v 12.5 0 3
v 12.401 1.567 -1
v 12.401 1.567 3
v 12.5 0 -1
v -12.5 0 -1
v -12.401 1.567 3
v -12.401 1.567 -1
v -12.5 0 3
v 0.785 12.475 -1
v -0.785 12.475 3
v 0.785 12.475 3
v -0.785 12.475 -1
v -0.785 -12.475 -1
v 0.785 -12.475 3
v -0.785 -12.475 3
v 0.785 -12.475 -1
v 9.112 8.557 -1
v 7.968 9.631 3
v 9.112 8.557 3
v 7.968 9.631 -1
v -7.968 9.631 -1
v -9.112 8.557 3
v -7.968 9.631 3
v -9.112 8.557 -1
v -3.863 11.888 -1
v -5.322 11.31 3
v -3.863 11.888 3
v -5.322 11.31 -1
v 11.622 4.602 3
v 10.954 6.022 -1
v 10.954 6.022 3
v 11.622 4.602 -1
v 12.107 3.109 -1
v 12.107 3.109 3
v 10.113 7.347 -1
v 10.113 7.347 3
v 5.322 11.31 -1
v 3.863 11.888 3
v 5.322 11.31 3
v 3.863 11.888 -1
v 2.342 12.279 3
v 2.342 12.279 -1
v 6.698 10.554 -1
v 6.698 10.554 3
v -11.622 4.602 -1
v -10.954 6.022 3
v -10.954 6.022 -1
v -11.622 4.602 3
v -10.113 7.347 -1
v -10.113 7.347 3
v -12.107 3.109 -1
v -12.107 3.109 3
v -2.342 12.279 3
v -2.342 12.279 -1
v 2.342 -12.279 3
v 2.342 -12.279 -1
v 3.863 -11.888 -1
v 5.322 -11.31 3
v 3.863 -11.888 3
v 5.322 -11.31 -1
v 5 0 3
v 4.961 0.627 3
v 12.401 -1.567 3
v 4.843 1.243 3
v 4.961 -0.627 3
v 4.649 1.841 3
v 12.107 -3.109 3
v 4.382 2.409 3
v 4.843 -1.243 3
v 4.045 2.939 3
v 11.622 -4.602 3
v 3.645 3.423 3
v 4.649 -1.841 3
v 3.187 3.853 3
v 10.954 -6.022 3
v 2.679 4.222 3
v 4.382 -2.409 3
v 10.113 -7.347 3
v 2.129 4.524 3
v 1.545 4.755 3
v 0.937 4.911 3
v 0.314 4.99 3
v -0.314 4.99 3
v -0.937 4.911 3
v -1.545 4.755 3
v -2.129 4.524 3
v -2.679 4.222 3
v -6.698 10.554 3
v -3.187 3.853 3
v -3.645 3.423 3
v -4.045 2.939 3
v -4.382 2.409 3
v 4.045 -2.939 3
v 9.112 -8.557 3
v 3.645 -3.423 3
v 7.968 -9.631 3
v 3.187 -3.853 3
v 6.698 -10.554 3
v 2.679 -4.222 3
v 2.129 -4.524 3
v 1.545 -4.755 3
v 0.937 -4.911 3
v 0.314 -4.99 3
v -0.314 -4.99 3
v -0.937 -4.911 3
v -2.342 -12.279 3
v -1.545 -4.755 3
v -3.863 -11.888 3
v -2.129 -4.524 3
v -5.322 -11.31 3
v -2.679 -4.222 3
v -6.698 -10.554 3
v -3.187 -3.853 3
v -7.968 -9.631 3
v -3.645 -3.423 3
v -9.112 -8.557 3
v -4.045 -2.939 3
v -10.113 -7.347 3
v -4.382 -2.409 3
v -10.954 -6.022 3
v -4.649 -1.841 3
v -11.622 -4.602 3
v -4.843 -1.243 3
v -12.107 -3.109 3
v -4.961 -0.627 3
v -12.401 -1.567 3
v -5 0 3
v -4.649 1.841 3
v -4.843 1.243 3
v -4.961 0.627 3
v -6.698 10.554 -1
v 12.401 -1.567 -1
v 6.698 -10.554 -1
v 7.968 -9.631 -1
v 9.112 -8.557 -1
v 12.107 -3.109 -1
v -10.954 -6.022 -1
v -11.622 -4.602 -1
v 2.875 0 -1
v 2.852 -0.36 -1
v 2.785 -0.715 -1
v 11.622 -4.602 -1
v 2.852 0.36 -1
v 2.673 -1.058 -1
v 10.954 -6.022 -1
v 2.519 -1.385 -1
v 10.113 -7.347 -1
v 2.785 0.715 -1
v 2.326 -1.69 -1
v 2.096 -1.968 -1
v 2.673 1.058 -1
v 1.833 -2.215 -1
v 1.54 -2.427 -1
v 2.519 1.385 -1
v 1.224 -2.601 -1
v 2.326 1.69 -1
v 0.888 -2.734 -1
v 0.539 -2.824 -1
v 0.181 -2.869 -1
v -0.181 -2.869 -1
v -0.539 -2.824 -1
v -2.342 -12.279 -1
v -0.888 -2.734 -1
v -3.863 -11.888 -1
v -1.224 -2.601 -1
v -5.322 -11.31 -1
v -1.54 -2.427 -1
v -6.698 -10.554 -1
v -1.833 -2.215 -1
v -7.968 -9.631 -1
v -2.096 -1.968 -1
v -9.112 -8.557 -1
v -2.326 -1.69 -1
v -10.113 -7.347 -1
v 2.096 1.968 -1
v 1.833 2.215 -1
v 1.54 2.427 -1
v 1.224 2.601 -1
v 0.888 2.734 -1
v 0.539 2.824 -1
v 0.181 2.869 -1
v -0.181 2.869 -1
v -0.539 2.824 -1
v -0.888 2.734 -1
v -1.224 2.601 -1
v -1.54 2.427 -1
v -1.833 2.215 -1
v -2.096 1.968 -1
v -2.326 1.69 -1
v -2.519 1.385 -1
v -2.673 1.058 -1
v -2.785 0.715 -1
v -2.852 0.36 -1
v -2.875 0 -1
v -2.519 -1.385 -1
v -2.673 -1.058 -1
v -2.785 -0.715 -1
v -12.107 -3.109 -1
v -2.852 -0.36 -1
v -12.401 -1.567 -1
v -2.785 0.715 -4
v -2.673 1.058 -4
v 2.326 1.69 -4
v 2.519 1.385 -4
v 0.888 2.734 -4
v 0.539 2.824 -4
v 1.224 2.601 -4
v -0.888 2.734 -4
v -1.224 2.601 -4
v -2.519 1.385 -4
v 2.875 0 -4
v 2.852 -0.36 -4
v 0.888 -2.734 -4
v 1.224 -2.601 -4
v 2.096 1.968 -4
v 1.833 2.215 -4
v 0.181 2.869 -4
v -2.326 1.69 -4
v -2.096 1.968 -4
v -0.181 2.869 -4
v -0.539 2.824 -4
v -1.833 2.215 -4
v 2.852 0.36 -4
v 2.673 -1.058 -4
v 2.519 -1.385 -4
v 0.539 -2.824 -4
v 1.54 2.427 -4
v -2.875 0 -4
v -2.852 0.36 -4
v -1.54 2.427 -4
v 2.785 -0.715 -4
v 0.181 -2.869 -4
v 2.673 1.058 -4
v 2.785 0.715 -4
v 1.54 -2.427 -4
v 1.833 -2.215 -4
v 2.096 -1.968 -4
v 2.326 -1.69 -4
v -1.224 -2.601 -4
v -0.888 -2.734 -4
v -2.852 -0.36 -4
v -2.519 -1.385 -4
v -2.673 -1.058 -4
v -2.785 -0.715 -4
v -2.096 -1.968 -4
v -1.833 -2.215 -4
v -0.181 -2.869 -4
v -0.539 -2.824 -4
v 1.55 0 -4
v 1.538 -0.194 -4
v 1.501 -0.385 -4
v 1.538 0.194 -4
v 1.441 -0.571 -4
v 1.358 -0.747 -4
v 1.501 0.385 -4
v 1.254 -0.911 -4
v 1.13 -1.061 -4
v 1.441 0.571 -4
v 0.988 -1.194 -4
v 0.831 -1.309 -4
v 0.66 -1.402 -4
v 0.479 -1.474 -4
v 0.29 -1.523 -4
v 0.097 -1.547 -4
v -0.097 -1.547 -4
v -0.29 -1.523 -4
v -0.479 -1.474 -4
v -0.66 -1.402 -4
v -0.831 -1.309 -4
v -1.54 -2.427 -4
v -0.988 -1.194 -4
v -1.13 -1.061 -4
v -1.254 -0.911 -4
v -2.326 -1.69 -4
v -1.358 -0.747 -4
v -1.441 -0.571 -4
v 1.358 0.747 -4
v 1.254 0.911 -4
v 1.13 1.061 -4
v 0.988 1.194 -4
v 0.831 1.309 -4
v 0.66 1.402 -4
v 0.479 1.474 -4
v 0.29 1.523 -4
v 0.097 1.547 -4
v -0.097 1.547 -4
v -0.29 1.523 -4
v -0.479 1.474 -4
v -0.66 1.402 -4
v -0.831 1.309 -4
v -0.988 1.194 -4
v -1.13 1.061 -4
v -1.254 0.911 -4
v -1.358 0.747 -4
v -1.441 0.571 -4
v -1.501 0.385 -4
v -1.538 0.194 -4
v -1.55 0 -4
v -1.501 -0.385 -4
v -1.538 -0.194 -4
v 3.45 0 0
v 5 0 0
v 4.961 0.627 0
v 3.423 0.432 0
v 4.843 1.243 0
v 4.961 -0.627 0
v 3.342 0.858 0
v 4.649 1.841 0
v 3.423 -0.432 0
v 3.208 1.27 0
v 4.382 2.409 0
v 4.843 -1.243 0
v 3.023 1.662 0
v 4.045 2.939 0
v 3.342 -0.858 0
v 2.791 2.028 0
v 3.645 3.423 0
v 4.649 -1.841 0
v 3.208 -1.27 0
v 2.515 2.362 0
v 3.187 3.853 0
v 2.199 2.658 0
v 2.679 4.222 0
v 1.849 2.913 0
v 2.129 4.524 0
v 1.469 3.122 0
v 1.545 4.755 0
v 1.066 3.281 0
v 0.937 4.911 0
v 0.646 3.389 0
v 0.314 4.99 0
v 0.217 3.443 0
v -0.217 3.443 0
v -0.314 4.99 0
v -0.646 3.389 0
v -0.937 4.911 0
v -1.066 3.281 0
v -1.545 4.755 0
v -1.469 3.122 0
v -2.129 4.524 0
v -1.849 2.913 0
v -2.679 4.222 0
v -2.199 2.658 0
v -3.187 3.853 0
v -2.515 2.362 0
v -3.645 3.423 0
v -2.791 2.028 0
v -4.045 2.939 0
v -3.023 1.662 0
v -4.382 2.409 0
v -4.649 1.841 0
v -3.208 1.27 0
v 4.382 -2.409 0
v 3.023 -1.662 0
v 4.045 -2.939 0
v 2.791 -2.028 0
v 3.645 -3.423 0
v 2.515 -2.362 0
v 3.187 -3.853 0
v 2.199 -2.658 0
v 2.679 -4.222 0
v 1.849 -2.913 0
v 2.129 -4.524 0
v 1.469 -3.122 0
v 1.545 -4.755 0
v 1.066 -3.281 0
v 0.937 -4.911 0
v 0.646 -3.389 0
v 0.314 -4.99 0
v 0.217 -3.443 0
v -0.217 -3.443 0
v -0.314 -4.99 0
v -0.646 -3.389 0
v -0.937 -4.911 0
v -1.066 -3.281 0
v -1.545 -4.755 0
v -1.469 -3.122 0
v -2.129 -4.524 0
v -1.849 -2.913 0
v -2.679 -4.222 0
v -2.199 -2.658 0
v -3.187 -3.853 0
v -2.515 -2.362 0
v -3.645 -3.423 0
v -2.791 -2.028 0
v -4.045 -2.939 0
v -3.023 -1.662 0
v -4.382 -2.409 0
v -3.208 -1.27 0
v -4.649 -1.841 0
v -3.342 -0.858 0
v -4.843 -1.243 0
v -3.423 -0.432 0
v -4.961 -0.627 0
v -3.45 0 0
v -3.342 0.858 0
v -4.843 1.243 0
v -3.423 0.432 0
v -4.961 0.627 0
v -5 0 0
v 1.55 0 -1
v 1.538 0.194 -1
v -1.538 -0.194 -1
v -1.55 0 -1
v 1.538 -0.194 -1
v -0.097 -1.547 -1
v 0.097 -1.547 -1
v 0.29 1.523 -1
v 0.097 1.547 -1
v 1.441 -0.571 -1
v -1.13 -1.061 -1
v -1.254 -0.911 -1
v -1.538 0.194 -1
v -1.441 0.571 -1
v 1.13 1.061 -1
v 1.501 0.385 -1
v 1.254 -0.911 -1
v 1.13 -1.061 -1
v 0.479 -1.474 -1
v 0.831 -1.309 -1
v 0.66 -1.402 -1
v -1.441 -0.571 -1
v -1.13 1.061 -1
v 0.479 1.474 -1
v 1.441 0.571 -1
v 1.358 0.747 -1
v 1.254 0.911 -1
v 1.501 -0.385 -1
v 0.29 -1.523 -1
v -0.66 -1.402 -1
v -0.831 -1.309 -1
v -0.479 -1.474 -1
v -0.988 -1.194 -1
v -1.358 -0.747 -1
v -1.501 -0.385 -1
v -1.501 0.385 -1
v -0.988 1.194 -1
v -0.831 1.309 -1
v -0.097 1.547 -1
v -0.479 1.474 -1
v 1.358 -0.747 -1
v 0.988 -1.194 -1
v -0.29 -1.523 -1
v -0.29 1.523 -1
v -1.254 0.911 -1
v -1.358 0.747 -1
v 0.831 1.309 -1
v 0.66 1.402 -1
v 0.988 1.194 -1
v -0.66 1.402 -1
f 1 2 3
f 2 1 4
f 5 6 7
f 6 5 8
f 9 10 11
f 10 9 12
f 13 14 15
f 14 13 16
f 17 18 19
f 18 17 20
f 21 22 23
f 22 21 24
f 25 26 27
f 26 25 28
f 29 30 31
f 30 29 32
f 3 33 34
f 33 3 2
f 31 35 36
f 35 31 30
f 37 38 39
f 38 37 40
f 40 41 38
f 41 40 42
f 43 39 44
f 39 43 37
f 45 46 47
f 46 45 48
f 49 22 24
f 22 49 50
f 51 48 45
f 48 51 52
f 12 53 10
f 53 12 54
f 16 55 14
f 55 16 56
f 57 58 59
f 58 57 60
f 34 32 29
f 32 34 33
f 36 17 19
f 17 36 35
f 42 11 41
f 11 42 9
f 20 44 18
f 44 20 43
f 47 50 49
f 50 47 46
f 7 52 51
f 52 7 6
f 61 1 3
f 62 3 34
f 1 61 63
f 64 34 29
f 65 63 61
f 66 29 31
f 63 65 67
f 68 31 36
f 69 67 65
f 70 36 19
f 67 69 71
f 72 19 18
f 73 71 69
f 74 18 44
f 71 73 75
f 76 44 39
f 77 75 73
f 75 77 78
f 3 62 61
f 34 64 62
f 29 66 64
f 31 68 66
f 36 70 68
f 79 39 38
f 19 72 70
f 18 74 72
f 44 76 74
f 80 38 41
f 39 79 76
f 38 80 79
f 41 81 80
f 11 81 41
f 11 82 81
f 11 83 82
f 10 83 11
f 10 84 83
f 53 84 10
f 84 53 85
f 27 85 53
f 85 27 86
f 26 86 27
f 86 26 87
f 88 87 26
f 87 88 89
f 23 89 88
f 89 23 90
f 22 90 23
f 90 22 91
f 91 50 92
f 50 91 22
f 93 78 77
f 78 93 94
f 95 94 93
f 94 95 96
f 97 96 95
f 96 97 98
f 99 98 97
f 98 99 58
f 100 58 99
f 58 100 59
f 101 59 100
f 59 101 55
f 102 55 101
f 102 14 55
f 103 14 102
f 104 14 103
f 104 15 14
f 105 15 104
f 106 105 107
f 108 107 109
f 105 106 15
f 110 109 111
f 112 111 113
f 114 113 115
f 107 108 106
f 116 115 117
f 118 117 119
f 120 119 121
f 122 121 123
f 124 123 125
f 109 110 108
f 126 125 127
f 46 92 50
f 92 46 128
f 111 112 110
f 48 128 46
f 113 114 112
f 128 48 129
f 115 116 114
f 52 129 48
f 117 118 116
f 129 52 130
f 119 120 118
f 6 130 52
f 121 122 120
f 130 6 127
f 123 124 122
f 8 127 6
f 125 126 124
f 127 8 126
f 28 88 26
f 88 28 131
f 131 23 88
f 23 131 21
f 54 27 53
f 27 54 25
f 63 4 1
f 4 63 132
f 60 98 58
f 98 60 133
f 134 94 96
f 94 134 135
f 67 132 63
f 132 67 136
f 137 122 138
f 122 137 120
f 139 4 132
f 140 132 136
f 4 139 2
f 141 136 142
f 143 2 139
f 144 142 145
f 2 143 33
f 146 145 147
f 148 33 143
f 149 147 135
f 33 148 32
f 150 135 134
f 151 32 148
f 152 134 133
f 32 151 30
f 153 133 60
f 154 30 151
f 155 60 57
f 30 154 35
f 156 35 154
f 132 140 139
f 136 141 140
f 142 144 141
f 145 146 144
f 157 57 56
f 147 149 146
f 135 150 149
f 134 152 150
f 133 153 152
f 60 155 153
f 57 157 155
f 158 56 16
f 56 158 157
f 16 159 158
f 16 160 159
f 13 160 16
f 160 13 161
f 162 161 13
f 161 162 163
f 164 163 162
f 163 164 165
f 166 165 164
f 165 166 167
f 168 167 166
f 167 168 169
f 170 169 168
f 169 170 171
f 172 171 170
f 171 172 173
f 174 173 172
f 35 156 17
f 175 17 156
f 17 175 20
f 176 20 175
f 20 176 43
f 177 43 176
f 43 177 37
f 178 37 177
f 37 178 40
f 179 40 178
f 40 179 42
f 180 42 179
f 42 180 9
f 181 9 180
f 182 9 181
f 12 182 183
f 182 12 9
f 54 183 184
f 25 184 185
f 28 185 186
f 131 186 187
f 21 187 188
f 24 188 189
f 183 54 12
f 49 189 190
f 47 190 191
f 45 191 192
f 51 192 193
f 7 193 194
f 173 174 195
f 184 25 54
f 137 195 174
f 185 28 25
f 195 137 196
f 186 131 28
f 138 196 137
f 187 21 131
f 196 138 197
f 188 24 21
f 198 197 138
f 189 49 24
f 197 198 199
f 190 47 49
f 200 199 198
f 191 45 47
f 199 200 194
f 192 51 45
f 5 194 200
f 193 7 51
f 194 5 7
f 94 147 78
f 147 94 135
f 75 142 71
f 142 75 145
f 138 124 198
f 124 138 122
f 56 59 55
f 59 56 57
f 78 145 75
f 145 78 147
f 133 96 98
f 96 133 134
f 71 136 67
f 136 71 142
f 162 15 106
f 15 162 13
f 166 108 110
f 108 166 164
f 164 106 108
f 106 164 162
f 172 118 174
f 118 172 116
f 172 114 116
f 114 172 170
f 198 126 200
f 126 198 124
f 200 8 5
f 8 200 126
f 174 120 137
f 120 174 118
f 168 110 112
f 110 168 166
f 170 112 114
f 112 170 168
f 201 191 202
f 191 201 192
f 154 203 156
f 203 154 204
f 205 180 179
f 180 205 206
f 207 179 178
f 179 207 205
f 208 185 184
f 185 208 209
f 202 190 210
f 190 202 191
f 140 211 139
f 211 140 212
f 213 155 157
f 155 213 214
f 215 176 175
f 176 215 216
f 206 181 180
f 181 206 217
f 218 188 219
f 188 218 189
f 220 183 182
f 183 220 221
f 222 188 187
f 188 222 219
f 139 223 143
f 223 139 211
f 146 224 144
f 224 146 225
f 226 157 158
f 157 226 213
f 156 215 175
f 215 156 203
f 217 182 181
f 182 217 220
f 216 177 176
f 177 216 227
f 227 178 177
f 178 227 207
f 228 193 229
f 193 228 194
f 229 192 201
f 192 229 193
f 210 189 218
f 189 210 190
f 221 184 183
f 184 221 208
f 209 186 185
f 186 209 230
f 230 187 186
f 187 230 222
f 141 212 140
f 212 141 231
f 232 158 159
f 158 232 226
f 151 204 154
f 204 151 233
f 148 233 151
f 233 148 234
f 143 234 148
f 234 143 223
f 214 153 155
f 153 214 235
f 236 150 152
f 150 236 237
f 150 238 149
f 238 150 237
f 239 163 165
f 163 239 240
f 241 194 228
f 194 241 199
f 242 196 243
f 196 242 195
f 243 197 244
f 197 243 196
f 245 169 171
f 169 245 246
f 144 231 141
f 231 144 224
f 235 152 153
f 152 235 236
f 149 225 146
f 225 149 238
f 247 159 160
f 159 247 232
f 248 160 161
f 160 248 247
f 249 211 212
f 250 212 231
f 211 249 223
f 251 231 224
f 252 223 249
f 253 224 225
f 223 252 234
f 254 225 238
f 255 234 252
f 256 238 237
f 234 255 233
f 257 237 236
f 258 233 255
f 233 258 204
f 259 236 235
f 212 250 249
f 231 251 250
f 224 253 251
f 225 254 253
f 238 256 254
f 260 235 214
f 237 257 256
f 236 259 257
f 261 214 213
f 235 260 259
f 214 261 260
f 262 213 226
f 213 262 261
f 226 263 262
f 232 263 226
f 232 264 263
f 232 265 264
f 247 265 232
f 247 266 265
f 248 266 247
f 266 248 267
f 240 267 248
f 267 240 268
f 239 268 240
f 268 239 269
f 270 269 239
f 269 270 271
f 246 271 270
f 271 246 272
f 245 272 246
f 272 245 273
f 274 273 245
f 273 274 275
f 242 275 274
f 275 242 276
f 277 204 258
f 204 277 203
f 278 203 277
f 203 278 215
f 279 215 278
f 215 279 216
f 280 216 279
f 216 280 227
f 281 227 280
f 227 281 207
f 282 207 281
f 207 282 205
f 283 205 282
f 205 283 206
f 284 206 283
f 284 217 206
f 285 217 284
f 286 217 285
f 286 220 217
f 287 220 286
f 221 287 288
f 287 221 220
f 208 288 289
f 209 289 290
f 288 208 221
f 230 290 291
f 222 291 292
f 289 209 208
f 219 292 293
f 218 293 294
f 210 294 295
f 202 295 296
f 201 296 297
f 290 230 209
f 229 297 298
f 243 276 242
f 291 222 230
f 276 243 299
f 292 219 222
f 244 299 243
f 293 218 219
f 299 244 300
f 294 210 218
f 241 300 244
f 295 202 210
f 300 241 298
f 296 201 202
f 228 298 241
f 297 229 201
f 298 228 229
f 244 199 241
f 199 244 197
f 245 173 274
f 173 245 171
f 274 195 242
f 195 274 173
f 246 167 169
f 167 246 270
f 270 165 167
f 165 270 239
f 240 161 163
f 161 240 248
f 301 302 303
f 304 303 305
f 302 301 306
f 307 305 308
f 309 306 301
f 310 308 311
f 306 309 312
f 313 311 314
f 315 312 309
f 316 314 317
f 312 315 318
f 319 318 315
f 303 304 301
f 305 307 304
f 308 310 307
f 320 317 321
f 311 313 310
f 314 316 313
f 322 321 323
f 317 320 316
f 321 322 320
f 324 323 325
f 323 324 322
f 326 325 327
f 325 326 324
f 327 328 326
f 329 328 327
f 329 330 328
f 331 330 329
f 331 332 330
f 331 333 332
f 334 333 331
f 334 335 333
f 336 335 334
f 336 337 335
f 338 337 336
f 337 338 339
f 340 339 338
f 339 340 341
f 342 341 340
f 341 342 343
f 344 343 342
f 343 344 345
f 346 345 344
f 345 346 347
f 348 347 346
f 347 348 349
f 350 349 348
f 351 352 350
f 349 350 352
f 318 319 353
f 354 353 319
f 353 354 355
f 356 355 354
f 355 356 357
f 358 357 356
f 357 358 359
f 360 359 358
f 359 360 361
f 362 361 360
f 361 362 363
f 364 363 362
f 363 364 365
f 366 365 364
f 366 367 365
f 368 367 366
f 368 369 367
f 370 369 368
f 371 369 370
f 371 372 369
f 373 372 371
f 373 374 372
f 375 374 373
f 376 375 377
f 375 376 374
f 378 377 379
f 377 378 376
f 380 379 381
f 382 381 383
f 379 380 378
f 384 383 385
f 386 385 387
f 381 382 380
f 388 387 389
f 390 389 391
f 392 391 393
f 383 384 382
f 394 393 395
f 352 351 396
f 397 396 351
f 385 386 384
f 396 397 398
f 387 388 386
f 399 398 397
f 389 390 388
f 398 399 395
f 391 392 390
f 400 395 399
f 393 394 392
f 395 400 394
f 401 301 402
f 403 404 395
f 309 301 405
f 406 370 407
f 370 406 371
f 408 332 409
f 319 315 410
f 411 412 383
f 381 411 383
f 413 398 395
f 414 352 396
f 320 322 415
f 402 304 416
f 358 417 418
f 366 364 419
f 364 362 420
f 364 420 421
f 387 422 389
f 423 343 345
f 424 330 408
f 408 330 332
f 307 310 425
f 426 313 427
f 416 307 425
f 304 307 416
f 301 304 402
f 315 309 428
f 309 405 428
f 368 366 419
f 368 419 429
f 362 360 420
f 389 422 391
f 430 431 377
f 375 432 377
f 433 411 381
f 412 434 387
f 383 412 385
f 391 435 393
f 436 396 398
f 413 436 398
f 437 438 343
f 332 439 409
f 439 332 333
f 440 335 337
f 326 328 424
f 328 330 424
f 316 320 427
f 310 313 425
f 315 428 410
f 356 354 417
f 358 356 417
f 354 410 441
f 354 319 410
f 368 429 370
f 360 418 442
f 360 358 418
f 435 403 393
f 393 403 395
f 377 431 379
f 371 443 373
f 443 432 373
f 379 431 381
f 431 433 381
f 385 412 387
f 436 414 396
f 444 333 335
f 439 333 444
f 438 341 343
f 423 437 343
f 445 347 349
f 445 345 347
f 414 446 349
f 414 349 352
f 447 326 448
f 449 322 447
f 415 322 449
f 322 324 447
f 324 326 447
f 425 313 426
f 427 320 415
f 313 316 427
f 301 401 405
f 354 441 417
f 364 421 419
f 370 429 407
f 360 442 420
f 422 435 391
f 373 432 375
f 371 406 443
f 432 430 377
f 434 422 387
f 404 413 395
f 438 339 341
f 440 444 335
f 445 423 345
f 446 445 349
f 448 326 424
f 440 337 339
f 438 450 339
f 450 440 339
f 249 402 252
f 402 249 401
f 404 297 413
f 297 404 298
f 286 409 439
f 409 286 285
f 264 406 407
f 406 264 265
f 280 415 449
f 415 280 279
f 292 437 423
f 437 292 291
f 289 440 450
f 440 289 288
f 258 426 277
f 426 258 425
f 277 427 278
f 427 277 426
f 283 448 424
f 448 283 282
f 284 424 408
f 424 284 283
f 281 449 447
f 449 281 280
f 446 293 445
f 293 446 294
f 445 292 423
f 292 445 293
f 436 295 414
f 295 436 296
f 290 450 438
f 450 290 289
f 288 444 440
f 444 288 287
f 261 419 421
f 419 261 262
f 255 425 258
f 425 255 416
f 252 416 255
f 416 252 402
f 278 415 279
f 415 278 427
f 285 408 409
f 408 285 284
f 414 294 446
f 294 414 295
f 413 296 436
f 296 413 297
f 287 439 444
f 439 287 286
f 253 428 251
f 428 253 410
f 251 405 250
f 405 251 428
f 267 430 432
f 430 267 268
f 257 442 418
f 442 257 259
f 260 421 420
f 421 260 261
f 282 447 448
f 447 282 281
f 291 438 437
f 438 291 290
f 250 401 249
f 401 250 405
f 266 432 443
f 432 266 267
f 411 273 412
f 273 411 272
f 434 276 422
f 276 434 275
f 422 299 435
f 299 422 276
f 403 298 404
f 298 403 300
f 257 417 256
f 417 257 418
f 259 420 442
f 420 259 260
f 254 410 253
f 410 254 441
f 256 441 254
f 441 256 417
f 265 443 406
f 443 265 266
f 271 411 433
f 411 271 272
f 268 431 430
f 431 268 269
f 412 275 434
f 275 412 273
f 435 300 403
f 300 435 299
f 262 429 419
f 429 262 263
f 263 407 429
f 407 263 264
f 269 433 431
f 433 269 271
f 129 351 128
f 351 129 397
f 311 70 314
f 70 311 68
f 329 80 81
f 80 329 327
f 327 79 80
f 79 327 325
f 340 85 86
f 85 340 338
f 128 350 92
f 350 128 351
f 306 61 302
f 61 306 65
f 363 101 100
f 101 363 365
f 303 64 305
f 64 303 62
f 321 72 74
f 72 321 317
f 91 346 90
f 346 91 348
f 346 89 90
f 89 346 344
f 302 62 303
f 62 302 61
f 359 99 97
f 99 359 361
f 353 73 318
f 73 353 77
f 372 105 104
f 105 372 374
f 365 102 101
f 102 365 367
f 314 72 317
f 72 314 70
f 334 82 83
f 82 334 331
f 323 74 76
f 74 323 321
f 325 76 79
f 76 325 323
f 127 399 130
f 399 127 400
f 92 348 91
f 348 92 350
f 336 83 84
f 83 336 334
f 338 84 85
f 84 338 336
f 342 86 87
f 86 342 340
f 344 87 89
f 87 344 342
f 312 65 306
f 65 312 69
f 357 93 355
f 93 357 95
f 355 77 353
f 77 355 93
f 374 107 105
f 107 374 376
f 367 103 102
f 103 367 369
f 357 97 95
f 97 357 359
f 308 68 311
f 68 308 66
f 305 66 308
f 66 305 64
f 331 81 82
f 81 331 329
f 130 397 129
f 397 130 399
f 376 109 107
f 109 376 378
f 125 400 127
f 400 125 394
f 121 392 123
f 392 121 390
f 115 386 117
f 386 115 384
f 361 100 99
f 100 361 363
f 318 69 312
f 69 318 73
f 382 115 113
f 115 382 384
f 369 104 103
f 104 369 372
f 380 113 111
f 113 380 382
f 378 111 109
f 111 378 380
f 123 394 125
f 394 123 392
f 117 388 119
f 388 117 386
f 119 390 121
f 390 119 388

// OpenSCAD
$fn = 50;


difference() {
	union() {
		translate(v = [0, 0, -1.0000000000]) {
			cylinder(h = 4.0000000000, r = 12.5000000000);
		}
		#translate(v = [0, 0, -4.0000000000]) {
			cylinder(h = 4.0000000000, r = 2.8750000000);
		}
	}
	union() {
		translate(v = [0, 0, 0]) {
			rotate(a = [0, 0, 0]) {
				difference() {
					union() {
						translate(v = [0, 0, -4.0000000000]) {
							cylinder(h = 4.0000000000, r = 1.2500000000);
						}
						translate(v = [0, 0, -1.0000000000]) {
							cylinder(h = 1.0000000000, r1 = 1.5500000000, r2 = 3.4500000000);
						}
						translate(v = [0, 0, -4.0000000000]) {
							cylinder(h = 4.0000000000, r = 1.5500000000);
						}
						translate(v = [0, 0, -4.0000000000]) {
							cylinder(h = 4.0000000000, r = 1.2500000000);
						}
					}
					union();
				}
			}
		}
		#cylinder(h = 3, r = 5.0000000000);
	}
}
